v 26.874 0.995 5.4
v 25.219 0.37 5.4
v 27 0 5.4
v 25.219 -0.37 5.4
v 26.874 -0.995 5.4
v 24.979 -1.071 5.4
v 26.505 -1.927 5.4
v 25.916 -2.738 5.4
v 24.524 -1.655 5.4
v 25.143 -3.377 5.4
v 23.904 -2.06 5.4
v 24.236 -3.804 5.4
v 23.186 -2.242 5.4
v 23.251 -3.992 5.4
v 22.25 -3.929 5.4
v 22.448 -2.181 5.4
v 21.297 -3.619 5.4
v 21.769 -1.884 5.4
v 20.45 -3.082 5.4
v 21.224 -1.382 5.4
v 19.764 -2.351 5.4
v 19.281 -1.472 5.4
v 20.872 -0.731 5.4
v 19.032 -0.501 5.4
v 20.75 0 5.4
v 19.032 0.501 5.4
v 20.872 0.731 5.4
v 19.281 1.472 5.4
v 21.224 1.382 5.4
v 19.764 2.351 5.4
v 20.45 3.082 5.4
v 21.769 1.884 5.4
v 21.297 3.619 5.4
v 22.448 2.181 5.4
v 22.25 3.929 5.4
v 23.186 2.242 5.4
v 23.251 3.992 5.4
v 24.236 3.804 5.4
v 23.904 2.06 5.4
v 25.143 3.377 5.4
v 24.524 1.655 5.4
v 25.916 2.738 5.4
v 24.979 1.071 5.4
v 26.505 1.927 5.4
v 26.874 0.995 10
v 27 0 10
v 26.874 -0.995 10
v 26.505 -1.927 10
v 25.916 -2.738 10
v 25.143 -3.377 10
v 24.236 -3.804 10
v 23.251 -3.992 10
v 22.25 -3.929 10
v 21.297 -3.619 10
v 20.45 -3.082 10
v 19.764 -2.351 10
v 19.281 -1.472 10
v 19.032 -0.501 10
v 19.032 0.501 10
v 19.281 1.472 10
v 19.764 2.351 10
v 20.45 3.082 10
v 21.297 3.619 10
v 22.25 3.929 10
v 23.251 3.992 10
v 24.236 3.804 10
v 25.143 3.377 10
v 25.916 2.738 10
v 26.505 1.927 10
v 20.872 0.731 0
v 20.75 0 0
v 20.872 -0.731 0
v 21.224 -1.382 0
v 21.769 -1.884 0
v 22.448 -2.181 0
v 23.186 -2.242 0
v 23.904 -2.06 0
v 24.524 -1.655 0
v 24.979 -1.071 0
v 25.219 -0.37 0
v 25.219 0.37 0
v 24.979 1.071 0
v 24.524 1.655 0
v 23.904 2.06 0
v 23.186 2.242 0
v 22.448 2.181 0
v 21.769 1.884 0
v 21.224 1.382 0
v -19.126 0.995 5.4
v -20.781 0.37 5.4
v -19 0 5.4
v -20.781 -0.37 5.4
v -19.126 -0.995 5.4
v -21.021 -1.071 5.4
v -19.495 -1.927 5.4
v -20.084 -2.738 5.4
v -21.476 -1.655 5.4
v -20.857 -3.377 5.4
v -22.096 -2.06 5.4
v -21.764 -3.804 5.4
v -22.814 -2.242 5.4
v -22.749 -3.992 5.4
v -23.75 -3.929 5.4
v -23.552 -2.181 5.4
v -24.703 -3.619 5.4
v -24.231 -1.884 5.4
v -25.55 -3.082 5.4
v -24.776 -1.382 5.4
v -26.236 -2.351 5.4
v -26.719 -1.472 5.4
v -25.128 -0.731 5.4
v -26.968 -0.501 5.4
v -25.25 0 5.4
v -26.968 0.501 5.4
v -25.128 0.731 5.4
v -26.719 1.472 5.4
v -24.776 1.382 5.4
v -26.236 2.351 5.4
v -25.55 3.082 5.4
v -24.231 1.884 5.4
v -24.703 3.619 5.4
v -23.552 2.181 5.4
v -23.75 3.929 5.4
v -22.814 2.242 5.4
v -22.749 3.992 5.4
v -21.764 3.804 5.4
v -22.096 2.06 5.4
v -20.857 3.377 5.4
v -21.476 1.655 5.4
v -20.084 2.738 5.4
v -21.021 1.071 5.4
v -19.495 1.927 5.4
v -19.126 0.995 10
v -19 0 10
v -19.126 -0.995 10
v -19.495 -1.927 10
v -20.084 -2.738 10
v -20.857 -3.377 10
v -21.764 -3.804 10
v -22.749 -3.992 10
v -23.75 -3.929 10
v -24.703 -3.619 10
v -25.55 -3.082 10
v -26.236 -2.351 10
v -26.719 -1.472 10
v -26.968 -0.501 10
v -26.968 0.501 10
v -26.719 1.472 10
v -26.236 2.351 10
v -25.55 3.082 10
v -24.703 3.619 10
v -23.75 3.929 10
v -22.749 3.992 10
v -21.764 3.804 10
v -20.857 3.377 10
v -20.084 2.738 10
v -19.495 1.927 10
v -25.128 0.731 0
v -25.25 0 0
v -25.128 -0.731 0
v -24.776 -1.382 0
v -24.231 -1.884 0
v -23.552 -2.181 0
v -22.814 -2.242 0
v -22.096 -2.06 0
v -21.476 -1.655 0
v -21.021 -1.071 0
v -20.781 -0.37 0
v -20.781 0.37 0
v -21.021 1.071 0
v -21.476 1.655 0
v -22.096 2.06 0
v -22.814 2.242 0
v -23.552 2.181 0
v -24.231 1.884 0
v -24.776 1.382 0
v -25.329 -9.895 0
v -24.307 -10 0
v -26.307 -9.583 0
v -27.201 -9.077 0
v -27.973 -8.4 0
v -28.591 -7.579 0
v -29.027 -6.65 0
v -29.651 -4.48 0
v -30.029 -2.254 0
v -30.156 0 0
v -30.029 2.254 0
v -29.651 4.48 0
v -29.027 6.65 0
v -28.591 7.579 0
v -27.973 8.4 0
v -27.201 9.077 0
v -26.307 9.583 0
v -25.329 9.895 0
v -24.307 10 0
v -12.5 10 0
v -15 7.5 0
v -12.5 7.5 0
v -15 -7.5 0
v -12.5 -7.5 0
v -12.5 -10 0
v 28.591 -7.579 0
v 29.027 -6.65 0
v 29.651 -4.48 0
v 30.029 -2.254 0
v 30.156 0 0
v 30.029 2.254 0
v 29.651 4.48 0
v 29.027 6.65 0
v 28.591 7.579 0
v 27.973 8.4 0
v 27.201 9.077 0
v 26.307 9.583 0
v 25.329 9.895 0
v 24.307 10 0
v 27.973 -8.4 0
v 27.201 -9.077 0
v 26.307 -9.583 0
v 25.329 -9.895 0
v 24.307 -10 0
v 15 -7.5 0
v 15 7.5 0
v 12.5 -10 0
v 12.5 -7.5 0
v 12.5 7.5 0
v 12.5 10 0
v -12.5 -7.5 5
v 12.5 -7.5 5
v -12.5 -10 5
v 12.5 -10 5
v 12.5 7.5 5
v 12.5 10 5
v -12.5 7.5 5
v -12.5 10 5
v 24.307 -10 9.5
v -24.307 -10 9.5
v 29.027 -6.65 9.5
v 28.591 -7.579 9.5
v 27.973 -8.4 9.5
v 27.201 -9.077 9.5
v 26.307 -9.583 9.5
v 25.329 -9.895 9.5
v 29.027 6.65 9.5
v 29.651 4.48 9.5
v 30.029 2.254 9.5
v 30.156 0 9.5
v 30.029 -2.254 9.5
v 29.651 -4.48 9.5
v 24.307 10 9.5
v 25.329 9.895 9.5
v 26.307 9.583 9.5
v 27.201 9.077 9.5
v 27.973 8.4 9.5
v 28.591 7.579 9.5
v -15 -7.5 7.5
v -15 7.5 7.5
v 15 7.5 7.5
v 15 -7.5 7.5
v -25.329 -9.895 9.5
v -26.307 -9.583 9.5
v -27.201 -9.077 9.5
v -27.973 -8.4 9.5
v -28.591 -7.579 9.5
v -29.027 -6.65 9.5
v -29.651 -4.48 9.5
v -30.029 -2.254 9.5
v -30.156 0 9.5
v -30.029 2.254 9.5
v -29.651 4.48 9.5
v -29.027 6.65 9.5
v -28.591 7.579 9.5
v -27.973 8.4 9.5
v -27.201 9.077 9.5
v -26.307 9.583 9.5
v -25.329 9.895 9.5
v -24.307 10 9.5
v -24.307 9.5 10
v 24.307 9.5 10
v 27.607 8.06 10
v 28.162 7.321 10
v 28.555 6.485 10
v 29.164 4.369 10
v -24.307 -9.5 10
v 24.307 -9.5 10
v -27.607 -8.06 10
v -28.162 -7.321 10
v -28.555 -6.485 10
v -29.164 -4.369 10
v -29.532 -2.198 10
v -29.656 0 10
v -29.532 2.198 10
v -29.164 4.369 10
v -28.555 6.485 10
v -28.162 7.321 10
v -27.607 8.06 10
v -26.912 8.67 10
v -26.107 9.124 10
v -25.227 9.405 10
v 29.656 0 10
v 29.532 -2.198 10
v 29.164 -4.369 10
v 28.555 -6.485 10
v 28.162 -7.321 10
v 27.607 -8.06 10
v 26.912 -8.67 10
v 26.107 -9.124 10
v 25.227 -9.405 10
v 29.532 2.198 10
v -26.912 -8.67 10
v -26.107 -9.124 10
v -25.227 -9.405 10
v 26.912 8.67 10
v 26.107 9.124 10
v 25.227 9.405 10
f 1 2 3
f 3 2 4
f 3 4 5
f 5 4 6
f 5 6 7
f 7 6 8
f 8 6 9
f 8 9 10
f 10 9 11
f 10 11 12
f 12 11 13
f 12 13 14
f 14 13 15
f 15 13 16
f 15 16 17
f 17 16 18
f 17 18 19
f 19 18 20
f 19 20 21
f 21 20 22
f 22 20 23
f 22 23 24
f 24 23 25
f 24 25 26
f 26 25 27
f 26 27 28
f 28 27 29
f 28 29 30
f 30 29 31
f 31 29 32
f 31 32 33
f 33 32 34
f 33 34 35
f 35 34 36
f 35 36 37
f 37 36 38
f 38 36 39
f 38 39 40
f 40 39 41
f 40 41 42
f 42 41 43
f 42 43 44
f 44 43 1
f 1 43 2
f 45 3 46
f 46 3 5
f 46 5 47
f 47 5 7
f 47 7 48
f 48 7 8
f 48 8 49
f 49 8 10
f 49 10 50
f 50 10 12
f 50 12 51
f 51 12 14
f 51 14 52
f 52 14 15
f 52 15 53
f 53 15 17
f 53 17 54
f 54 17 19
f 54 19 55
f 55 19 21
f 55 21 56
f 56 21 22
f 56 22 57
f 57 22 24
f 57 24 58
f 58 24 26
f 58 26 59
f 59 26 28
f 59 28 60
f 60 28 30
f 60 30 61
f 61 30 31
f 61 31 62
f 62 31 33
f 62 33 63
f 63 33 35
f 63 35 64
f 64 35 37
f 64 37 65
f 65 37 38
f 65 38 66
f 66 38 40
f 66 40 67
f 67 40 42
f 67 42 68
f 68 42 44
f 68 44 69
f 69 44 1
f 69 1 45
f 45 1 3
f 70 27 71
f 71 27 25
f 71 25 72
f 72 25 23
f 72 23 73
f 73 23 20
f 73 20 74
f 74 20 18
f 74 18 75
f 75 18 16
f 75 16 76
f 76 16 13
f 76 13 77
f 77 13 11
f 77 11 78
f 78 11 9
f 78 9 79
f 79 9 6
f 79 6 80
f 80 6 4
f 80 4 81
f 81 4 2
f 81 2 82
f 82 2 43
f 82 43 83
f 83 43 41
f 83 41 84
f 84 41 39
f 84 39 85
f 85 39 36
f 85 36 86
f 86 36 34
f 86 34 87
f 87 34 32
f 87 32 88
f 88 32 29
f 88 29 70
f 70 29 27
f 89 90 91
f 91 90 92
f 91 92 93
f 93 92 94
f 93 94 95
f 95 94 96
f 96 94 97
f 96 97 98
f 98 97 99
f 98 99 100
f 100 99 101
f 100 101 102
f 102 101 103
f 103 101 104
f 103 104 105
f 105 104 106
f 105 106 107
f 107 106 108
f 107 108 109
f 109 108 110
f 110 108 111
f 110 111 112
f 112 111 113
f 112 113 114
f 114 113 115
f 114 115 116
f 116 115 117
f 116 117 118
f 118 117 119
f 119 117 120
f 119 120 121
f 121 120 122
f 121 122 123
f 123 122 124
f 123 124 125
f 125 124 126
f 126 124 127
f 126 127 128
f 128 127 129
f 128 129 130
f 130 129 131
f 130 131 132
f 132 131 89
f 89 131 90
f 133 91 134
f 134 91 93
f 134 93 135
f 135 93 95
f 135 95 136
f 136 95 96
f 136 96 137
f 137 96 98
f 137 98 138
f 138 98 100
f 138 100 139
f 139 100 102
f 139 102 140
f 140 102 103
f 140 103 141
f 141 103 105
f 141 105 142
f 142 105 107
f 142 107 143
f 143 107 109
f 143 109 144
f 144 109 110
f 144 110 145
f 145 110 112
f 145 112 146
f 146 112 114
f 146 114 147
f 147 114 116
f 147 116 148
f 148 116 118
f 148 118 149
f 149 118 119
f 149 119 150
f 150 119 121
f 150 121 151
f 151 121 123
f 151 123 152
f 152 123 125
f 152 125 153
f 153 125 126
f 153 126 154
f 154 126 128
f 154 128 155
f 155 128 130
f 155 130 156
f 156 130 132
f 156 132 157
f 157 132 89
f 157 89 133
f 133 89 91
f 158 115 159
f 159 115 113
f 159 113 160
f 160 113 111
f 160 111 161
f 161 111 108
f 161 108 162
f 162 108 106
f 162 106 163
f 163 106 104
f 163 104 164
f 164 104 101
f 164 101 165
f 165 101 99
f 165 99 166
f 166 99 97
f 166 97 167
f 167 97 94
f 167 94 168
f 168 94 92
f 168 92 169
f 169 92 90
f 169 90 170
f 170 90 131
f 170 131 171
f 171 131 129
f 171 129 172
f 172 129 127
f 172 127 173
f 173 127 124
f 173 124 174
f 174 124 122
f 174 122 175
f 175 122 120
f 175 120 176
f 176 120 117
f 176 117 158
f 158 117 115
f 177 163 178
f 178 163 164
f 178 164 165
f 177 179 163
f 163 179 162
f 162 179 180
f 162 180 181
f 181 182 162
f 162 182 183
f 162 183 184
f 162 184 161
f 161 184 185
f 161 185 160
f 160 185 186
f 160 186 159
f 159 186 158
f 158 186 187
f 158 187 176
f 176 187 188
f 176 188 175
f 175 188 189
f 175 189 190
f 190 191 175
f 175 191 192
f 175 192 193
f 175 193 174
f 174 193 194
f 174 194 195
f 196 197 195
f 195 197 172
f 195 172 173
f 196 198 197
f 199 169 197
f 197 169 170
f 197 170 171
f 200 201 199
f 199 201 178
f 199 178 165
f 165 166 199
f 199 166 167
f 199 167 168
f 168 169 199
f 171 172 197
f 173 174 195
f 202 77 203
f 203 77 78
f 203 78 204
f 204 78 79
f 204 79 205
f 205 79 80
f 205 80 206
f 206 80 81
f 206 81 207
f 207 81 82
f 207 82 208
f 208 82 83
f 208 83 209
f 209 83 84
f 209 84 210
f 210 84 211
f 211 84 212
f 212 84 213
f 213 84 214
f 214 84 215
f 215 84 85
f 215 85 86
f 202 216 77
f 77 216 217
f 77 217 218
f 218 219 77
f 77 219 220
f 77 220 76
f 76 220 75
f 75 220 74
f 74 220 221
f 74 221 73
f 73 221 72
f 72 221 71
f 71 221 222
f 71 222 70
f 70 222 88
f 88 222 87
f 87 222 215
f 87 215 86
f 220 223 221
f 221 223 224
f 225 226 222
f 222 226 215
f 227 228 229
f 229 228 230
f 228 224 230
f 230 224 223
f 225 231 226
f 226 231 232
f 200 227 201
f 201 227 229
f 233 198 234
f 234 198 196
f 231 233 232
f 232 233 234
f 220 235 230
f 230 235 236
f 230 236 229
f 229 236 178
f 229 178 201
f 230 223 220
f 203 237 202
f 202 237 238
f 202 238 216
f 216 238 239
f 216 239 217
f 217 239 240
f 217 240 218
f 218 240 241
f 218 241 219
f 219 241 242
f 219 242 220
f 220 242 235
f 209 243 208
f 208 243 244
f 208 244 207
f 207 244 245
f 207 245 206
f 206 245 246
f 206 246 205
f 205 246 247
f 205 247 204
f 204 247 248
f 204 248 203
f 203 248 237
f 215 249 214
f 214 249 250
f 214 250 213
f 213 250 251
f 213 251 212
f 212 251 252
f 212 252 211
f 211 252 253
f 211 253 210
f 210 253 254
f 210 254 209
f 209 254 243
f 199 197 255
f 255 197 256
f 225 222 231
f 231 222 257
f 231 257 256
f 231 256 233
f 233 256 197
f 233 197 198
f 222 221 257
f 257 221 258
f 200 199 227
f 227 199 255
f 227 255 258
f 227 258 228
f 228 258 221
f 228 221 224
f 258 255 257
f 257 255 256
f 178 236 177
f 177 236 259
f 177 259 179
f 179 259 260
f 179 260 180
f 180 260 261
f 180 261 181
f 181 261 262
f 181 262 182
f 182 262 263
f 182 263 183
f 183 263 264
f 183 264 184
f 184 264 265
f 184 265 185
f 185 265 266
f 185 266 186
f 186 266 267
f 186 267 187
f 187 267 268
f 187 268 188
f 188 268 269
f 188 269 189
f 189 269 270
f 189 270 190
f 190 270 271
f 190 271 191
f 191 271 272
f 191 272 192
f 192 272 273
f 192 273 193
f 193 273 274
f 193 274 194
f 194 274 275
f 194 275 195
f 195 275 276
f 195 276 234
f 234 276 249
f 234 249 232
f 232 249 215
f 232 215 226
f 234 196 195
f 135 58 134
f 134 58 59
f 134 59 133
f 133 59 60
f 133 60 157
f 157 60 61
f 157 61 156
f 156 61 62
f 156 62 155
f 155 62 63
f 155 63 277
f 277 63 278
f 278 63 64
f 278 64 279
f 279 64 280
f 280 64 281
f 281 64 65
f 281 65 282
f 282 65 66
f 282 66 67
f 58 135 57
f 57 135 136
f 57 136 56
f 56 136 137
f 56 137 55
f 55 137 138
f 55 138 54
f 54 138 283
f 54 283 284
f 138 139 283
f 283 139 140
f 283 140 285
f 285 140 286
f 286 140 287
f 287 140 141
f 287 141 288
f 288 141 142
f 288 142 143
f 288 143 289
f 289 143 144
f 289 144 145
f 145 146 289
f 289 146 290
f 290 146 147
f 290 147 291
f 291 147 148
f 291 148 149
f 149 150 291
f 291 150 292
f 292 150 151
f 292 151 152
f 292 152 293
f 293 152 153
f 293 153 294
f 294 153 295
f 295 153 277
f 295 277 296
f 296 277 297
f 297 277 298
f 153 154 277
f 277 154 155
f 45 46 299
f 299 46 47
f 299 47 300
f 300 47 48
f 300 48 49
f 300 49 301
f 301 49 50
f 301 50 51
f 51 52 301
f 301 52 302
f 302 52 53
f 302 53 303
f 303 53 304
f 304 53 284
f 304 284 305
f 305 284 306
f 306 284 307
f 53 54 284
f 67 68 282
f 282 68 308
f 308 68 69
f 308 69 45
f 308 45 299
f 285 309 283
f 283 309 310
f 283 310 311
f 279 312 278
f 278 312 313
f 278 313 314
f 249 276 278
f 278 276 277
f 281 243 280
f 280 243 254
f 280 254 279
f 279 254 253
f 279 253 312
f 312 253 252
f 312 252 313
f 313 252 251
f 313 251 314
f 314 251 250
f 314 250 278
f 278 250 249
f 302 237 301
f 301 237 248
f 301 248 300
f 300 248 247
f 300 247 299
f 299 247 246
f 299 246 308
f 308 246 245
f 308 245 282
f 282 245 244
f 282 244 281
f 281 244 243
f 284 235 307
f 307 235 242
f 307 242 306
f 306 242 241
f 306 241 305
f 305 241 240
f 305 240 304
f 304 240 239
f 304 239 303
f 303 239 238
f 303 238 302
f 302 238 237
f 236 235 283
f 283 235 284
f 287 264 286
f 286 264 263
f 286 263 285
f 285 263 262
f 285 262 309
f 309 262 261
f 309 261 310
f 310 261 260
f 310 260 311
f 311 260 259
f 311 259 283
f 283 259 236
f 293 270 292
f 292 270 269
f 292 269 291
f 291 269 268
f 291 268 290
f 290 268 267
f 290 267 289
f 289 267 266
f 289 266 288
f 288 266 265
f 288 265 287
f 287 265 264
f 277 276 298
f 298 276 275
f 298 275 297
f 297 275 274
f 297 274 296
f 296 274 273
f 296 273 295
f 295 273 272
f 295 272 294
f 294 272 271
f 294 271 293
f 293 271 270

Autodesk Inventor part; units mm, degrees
ref_plane "YZ Plane" through (0, 0, 0) normal (1, 0, 0) x (0, 1, 0)
ref_plane "XZ Plane" through (0, 0, 0) normal (0, 1, 0) x (-1, 0, 0)
ref_plane "XY Plane" through (0, 0, 0) normal (0, 0, 1) x (1, 0, 0)
sketch "Náčrt1" plane through (0, 0, 0) normal (0, 0, 1) x (1, 0, 0)
  line L0 (-24.5, 0) -> (24.5, 0) projected
  line L1 (0, -14) -> (0, 14) projected
  line L2 (-17.5, 10) -> (17.5, 10)
  line L3 (17.5, 10) -> (17.5, -10)
  line L4 (17.5, -10) -> (-17.5, -10)
  line L5 (-17.5, -10) -> (-17.5, 10)
  point P0 (0, 0)
  point P1 (0, 10)
  point P2 (17.5, 0)
  point P3 (-17.5, 0)
  point P4 (0, -10)
  dimension "d0" = 35
  dimension "d1" = 20
extrude "Vysunutí1" add sketch "Náčrt1" along normal blind 10
sketch "Náčrt2" plane through (0, 0, 0) normal (0, 0, -1) x (-1, 0, 0)
  line L0 (17.5, -10) -> (-17.5, -10) projected
  line L1 (17.5, 10) -> (17.5, -10) projected
  line L2 (-17.5, 10) -> (17.5, 10) projected
  line L3 (-17.5, -10) -> (-17.5, 10) projected
  line L4 (-15, 7.5) -> (15, 7.5)
  line L5 (15, 7.5) -> (15, -7.5)
  line L6 (15, -7.5) -> (-15, -7.5)
  line L7 (-15, -7.5) -> (-15, 7.5)
  line L8 (24.5, 0) -> (-24.5, 0) projected
  line L9 (0, -14) -> (0, 14) projected
  point P0 (0, 0)
  point P1 (0, 7.5)
  point P2 (15, 0)
  dimension "d4" = 15
  dimension "d5" = 30
extrude "Vysunutí2" cut sketch "Náčrt2" against normal blind 7.5 contours L9 L8 L5 L6 | L6 L7 L8 L9 | L8 L9 L4 L5 | L8 L7 L4 L9
sketch "Náčrt3" plane through (-17.5, 10, 0) normal (0, 1, 0) x (1, 0, 0)
  line L0 (35, 0) -> (0, 0) projected
  line L1 (0, 0) -> (0, -10) projected
  line L2 (35, -10) -> (0, -10) projected
  line L3 (35, 0) -> (35, -10) projected
  line L4 (30, -5) -> (5, -5)
  line L5 (5, -5) -> (5, 0)
  line L6 (5, 0) -> (30, 0)
  line L7 (30, 0) -> (30, -5)
  point P0 (17.5, 0)
  point P1 (17.5, 0)
  point P2 (30, 0)
  point P3 (5, 0)
  dimension "d8" = 5
  dimension "d9" = 25
extrude "Vysunutí3" cut sketch "Náčrt3" against normal through all contours L7 L4 L5 L0
sketch "Náčrt4" plane through (0, 0, 0) normal (0, 0, -1) x (-1, 0, 0)
  line L0 (-12.5, 7.5) -> (-12.5, 10) projected
  line L1 (-17.5, 10) -> (-12.5, 10) projected
  line L2 (-17.5, -10) -> (-17.5, 10) projected
  line L3 (-12.5, -10) -> (-17.5, -10) projected
  line L4 (-12.5, -10) -> (-12.5, -7.5) projected
  line L5 (-12.5, -7.5) -> (-15, -7.5) projected
  line L6 (-15, -7.5) -> (-15, 7.5) projected
  line L7 (-15, 7.5) -> (-12.5, 7.5) projected
  line L8 (12.5, 10) -> (12.5, 7.5) projected
  line L9 (12.5, 7.5) -> (15, 7.5) projected
  line L10 (15, 7.5) -> (15, -7.5) projected
  line L11 (15, -7.5) -> (12.5, -7.5) projected
  line L12 (12.5, -7.5) -> (12.5, -10) projected
  line L13 (17.5, -10) -> (12.5, -10) projected
  line L14 (17.5, 10) -> (17.5, -10) projected
  line L15 (12.5, 10) -> (17.5, 10) projected
  line L16 (52.5, 0) -> (-52.5, 0) projected
  line L17 (0, -14) -> (0, 14) projected
  line L18 (-17.5, 10) -> (17.5, 10) projected
  line L19 (-27.5, 10) -> (-17.5, 10)
  line L20 (-17.5, 10) -> (-17.5, -10)
  line L21 (-17.5, -10) -> (-27.5, -10)
  line L22 (-27.5, -10) -> (-27.5, 10)
  line L23 (17.5, 10) -> (27.5, 10)
  line L24 (27.5, 10) -> (27.5, -10)
  line L25 (27.5, -10) -> (17.5, -10)
  line L26 (17.5, -10) -> (17.5, 10)
  arc A0 (-27.5, 10) -> (-27.5, -10) centre (-10, 0) ccw
  arc A1 (27.5, -10) -> (27.5, 10) centre (10, 0) ccw
  point P0 (0, 0)
  point P1 (-17.5, 0)
  point P2 (17.5, 0)
  point P3 (-17.5, 0)
  point P4 (17.5, 0)
  dimension "d26" = 10
  dimension "d27" = 10
  dimension "d32" = 10
  dimension "d33" = 10
extrude "Vysunutí4" add sketch "Náčrt4" against normal up to surface (10 mm away) contours L2 L16 L22 L19 | L2 L21 L22 L16 | L22 L16 A0 | L22 A0 L16 | L23 L24 L16 L14 | L16 L24 L25 L14 | A1 L16 L24 | L16 A1 L24
sketch "Náčrt5" plane through (0, 0, 10) normal (0, 0, 1) x (1, 0, 0)
  line L0 (-47.1525, 0) -> (47.1525, 0) projected
  line L1 (0, -14) -> (0, 14) projected
  line L2 (-27.5, 10) -> (27.5, 10) projected
  line L3 (27.5, -10) -> (-27.5, -10) projected
  arc A0 (27.5, -10) -> (27.5, 10) centre (10, 0) ccw projected
  arc A1 (-27.5, 10) -> (-27.5, -10) centre (-10, 0) ccw projected
  point P0 (0, 0)
  point P1 (23, 0)
  point P2 (-23, 0)
  dimension "d30" = 46
  dimension "d31" = 23
hole "Díra1" at (23, 0, 10) at (-23, 0, 10) direction (0, 0, -1) diameter 4.5 end through all counterbore diameter 8 counterbore depth 4.6 clearance for "Šroub s hlavou s vnitřním vybráním ISO 4762" size "M4" standard "ISO"
fillet "Zaoblení2" radius 5 4 edges at (27.5, 10, 5) (-27.5, 10, 5) (-27.5, -10, 5) (27.5, -10, 5)
chamfer "Zkosení1" distance 0.5 angle 45 2 edges at (0, 10, 10) (0, -10, 10)
properties part number "drzak_kable_horni_dil"
